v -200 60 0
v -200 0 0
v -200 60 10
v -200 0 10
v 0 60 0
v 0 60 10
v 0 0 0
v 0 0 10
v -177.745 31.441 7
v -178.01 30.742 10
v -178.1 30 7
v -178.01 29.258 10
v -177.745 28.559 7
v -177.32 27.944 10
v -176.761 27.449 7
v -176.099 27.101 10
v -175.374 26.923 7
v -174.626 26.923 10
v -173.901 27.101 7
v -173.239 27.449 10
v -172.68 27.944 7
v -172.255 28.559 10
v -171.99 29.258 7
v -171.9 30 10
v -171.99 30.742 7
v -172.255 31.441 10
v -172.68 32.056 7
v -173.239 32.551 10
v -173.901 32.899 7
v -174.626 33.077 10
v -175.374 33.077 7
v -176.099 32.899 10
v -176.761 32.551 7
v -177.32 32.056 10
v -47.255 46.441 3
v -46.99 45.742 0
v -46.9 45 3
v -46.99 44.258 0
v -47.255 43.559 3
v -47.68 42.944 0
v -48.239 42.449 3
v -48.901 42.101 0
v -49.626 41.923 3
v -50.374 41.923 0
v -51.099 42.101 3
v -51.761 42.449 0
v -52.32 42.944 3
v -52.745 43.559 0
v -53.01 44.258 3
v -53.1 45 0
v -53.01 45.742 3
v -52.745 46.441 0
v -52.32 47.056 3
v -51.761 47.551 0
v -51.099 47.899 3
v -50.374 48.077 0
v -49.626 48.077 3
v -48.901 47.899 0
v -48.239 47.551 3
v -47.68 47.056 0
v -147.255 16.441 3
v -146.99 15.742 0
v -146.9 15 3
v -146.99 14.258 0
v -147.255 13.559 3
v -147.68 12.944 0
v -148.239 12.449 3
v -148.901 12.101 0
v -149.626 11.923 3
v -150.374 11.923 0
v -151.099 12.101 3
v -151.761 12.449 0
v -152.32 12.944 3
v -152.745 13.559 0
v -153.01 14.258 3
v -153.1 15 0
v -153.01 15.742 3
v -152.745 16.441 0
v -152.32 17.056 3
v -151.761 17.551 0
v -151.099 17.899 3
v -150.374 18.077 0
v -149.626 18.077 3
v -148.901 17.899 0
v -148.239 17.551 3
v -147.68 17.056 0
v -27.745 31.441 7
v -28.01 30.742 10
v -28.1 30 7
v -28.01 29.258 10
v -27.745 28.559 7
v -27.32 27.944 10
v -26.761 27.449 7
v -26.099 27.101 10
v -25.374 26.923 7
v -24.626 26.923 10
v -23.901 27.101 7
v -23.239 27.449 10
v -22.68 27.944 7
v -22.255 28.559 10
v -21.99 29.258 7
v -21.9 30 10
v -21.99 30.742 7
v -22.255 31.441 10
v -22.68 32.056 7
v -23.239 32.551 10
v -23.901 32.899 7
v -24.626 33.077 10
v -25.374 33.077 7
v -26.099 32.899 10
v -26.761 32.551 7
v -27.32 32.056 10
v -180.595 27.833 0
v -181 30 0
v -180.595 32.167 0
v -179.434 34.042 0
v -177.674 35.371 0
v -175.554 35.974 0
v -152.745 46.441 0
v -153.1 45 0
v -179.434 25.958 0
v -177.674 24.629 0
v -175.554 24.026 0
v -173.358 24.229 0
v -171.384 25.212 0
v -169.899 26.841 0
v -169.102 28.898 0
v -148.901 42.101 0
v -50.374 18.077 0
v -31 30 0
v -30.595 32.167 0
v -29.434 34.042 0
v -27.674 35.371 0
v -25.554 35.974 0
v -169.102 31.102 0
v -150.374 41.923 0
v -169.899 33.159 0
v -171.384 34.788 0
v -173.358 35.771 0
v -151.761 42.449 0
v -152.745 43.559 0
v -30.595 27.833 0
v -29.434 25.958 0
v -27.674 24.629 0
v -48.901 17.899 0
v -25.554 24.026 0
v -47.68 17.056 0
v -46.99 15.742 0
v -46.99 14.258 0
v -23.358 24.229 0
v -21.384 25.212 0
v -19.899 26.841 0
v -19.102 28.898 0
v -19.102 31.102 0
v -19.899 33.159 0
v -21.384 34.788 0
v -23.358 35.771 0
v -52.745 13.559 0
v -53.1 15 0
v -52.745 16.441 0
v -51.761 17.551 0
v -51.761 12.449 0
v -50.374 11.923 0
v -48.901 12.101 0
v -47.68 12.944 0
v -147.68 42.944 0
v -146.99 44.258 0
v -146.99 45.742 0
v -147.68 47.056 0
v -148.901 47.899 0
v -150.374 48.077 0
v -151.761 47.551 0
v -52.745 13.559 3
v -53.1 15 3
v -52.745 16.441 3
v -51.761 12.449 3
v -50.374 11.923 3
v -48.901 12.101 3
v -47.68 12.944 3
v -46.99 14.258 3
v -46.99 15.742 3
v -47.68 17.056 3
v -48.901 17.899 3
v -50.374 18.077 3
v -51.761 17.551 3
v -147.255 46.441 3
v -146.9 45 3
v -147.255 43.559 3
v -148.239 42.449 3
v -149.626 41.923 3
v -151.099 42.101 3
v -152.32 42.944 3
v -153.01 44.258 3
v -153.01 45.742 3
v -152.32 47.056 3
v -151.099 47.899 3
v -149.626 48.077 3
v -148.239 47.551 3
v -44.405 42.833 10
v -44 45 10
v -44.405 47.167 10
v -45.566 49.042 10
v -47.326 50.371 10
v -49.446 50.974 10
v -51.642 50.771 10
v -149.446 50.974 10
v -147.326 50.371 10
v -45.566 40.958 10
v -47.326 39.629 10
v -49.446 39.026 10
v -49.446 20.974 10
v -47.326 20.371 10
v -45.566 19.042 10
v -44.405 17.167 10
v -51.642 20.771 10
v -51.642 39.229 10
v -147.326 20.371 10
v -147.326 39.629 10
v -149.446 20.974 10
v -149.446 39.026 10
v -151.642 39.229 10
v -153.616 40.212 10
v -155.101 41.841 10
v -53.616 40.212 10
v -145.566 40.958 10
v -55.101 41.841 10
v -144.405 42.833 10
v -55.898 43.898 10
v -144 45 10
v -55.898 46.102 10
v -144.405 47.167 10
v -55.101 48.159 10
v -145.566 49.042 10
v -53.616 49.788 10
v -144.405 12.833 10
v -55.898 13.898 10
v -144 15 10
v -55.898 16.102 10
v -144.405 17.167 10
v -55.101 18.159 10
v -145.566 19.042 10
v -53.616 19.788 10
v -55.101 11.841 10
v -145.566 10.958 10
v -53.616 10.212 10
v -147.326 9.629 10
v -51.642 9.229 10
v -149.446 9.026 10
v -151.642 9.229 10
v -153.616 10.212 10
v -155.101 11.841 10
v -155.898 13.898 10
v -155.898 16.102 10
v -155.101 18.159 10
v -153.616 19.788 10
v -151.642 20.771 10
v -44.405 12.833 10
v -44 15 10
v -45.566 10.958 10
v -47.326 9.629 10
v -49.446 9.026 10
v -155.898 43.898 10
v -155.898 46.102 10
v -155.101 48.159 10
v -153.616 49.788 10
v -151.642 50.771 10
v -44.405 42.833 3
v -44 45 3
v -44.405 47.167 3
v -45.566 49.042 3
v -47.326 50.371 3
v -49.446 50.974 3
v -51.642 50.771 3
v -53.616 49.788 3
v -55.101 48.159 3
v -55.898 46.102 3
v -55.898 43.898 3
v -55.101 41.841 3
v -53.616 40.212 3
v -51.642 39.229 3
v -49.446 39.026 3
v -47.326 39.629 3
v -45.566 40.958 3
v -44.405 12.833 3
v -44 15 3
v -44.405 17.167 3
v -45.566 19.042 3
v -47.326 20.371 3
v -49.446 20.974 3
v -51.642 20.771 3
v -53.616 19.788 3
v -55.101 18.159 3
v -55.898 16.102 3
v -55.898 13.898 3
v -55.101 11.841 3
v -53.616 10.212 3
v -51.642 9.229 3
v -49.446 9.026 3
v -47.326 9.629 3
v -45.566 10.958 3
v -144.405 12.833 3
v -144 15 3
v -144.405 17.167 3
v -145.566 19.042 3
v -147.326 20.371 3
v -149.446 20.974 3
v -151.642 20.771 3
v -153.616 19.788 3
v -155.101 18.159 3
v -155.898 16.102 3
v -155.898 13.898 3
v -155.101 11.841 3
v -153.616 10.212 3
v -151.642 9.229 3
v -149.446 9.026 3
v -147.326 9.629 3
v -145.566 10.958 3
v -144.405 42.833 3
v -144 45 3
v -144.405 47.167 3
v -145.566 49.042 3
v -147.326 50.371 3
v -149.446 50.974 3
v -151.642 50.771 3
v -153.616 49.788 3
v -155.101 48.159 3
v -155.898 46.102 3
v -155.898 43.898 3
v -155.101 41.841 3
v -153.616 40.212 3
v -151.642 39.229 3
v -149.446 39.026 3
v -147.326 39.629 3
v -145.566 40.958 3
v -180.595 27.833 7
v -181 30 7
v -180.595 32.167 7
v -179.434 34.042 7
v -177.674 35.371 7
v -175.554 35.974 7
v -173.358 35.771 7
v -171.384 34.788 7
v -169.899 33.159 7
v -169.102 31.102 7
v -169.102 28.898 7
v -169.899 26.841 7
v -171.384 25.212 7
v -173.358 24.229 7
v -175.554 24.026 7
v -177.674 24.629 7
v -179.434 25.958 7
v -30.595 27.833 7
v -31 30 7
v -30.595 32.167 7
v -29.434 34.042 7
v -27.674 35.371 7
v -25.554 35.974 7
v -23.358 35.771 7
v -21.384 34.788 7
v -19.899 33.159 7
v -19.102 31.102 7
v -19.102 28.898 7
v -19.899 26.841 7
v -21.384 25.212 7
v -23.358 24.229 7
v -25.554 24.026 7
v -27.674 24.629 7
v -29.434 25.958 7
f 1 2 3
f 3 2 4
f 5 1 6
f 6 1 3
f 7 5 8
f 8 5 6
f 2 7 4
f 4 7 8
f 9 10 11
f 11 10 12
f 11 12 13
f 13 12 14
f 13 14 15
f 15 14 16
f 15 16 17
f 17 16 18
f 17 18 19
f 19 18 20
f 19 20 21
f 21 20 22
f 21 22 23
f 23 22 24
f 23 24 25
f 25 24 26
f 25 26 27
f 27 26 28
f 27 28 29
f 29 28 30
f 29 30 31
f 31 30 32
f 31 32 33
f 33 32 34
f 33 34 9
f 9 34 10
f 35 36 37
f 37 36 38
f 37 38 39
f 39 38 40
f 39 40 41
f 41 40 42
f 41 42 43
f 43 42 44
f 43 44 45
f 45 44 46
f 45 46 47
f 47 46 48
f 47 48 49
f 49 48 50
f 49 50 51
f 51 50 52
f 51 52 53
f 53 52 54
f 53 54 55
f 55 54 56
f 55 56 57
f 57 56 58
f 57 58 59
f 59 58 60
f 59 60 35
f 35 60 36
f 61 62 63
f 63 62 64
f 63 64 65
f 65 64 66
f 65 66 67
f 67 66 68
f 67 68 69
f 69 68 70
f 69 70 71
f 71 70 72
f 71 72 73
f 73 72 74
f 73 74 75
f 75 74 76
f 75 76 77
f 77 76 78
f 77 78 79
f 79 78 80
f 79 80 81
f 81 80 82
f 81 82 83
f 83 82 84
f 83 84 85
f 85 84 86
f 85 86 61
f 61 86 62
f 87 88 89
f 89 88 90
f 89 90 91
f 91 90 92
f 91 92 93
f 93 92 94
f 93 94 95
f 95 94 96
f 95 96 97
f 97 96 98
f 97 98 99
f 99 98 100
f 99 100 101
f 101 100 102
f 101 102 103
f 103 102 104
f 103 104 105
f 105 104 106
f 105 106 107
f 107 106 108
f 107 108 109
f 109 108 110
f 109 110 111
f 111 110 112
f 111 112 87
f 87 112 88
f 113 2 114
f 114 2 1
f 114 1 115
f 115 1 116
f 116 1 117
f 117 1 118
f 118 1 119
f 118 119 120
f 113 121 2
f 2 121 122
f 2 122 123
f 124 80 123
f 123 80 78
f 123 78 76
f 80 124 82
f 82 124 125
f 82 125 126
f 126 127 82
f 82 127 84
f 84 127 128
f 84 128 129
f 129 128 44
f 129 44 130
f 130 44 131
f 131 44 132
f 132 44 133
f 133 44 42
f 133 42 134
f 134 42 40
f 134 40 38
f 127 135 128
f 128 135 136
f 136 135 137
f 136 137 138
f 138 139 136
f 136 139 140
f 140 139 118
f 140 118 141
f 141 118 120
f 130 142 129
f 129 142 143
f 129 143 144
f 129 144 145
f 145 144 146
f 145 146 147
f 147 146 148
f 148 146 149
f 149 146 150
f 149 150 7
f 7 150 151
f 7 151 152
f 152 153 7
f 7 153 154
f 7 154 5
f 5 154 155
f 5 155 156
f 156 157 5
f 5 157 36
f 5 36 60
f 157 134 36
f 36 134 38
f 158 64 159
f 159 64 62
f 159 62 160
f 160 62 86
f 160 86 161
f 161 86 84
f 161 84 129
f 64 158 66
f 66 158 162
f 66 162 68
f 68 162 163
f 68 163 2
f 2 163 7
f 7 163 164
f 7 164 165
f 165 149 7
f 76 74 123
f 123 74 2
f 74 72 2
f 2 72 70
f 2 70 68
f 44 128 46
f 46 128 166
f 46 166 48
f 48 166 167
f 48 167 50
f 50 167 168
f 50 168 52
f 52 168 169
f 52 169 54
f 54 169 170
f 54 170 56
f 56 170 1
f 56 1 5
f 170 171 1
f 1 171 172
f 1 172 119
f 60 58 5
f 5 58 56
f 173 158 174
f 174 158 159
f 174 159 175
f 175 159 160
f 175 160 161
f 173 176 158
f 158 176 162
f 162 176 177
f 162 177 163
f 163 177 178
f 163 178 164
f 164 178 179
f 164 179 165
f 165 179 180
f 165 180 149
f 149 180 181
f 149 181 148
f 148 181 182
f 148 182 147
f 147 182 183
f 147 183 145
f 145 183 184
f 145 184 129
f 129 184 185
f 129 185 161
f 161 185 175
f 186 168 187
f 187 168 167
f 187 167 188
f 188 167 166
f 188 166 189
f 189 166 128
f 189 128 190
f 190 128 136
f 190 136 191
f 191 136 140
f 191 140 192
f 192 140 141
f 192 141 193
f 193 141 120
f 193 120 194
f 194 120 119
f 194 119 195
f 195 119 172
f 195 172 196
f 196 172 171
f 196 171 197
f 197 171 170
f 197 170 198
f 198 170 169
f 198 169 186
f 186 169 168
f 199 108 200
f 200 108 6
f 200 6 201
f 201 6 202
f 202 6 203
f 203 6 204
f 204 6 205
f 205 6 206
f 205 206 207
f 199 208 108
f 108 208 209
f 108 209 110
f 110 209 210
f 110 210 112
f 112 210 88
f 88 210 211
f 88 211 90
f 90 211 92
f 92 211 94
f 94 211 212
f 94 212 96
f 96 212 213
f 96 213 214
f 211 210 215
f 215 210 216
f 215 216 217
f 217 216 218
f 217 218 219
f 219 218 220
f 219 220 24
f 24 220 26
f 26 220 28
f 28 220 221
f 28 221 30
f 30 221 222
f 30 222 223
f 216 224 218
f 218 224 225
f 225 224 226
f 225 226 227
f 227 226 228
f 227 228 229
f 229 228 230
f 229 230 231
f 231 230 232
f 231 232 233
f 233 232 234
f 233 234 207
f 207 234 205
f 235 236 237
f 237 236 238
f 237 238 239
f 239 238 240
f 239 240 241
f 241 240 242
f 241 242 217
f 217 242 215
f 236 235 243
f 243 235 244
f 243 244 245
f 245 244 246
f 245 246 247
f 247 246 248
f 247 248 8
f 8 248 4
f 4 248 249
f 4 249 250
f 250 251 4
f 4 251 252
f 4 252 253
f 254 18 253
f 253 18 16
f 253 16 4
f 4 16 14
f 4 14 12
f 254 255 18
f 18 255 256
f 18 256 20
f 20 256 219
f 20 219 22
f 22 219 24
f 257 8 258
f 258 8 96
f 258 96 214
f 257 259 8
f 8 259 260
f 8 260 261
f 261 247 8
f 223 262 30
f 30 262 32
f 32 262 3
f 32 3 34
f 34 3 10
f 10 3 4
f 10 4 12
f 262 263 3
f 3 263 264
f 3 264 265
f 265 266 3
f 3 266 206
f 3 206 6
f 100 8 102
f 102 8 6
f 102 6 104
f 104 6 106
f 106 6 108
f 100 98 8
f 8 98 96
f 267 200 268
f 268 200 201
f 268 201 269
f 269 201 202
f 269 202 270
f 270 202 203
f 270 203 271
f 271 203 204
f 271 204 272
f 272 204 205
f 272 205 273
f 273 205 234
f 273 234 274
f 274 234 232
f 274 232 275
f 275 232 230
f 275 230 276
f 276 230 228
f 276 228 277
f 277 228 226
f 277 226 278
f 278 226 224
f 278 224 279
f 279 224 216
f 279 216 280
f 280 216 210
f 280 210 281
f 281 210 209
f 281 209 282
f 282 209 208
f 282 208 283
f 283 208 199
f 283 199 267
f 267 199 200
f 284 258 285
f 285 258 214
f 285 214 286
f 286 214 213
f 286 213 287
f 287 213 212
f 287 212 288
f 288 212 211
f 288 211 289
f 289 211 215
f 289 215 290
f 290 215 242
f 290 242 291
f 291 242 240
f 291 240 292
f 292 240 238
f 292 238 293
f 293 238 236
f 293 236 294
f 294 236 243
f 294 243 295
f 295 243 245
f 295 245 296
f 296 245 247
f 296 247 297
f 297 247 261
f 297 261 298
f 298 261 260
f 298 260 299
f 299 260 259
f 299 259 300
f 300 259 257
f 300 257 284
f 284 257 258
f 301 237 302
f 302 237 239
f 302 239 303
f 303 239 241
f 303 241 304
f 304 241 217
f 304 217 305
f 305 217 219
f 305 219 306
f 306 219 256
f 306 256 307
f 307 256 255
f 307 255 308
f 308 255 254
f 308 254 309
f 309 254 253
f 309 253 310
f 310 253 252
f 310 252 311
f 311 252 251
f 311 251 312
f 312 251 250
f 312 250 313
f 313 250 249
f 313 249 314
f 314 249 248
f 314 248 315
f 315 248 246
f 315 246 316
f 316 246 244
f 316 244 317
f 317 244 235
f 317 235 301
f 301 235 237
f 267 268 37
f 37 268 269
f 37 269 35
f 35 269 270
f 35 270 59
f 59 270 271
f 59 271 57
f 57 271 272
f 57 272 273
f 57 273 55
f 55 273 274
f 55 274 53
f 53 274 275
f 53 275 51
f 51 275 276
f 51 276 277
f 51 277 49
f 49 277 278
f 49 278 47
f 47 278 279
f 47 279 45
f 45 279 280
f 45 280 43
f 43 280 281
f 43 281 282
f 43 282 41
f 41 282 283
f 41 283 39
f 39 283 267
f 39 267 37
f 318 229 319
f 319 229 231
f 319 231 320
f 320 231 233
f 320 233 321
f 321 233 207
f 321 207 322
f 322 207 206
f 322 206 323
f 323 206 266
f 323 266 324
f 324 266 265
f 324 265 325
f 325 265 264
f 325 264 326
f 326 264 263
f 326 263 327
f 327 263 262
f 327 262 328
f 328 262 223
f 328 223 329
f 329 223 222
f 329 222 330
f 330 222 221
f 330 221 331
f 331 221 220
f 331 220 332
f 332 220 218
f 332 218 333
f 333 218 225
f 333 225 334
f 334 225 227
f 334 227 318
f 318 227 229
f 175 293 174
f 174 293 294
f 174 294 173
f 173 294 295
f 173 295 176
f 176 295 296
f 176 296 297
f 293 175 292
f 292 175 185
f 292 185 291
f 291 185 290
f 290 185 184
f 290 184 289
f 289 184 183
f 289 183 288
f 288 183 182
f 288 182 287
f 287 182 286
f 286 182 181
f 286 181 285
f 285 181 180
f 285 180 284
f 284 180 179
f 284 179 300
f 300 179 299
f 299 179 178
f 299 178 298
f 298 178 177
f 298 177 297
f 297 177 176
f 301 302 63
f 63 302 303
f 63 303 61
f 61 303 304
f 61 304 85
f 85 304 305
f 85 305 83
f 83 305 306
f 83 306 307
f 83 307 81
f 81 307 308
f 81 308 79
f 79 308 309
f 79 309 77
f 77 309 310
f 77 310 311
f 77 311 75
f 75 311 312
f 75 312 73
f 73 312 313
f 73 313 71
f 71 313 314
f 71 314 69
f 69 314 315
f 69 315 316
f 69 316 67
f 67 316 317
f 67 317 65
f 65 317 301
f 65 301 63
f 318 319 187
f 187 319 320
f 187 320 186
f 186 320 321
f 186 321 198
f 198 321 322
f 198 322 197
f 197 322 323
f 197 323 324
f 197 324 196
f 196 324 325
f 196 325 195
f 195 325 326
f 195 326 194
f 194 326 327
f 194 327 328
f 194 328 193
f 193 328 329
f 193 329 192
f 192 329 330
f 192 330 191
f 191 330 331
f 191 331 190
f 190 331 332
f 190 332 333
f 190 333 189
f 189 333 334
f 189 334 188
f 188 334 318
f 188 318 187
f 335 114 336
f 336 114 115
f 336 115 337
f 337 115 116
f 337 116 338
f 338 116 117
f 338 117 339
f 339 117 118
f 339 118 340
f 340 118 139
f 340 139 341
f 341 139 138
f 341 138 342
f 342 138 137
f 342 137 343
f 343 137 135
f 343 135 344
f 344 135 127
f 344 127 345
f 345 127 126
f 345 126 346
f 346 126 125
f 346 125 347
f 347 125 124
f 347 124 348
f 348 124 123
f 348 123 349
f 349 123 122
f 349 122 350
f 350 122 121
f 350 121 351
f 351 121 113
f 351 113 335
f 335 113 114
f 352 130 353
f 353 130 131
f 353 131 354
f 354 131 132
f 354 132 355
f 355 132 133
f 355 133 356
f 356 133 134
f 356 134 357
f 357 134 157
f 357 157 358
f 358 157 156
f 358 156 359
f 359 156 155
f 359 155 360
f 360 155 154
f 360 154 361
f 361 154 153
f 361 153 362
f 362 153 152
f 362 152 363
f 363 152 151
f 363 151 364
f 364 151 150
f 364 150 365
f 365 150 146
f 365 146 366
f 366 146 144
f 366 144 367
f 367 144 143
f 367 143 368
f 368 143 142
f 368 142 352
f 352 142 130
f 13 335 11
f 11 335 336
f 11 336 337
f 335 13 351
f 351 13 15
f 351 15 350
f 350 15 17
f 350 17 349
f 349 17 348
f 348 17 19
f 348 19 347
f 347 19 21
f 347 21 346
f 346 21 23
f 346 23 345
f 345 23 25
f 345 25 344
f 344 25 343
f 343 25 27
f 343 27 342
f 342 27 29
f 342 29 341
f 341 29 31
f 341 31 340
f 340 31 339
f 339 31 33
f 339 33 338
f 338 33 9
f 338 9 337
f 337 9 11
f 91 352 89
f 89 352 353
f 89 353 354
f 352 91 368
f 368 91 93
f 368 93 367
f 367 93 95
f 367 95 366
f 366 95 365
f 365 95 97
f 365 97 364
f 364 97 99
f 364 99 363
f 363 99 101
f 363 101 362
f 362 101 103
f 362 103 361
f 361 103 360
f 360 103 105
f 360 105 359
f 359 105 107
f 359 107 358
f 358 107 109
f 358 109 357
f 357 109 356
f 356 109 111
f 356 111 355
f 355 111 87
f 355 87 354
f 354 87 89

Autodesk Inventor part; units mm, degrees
ref_plane "YZ-Ebene" through (0, 0, 0) normal (1, 0, 0) x (0, 1, 0)
ref_plane "XZ-Ebene" through (0, 0, 0) normal (0, 1, 0) x (-1, 0, 0)
ref_plane "XY-Ebene" through (0, 0, 0) normal (0, 0, 1) x (1, 0, 0)
sketch "Skizze1" plane through (0, 0, 0) normal (0, 0, 1) x (1, 0, 0)
  line L0 (-200, 60) -> (0, 60)
  line L1 (0, 60) -> (0, 0)
  line L2 (0, 0) -> (-200, 0)
  line L3 (-200, 0) -> (-200, 60)
  dimension "d0" = 200
  dimension "d1" = 60
extrude "Extrusion1" add sketch "Skizze1" along normal blind 10
sketch "Skizze2" plane through (0, 0, 10) normal (0, 0, 1) x (1, 0, 0)
  circle A0 centre (-175, 30) radius 3.1
  circle A1 centre (-25, 30) radius 3.1
  line L0 (-200, 0) -> (0, 0) projected
  line L1 (0, 0) -> (0, 60) projected
  circle A2 centre (-150, 45) radius 3.1
  circle A3 centre (-50, 45) radius 3.1
  circle A4 centre (-150, 15) radius 3.1
  circle A5 centre (-50, 15) radius 3.1
  line L2 (0, 60) -> (-200, 60) projected
  dimension "d4" = 6.2
  dimension "d5" = 6.2
  dimension "d6" = 30
  dimension "d7" = 30
  dimension "d8" = 150
  dimension "d9" = 25
  dimension "d10" = 6.2
  dimension "d11" = 6.2
  dimension "d12" = 6.2
  dimension "d13" = 6.2
  dimension "d14" = 30
  dimension "d15" = 30
  dimension "d16" = 100
  dimension "d17" = 100
  dimension "d18" = 50
  dimension "d19" = 50
  dimension "d20" = 15
  dimension "d21" = 15
extrude "Extrusion2" cut sketch "Skizze2" against normal blind 15
sketch "Skizze3" plane through (0, 0, 10) normal (0, 0, 1) x (1, 0, 0)
  circle A0 centre (-150, 45) radius 3.1 projected
  circle A1 centre (-150, 45) radius 6
  circle A2 centre (-150, 15) radius 3.1 projected
  circle A3 centre (-150, 15) radius 6
  circle A4 centre (-50, 45) radius 3.1 projected
  circle A5 centre (-50, 15) radius 3.1 projected
  circle A6 centre (-50, 15) radius 6
  circle A7 centre (-50, 45) radius 6
  point P0 (0, 0)
  dimension "d24" = 12
  dimension "d25" = 12
  dimension "d26" = 12
  dimension "d27" = 12
extrude "Extrusion3" cut sketch "Skizze3" against normal blind 7 contours A1 | A3 | A5 | A6 | A7
sketch "Skizze4" plane through (0, 0, 0) normal (0, 0, -1) x (-1, 0, 0)
  circle A0 centre (175, 30) radius 3.1 projected
  circle A1 centre (175, 30) radius 6
  circle A2 centre (25, 30) radius 3.1 projected
  circle A3 centre (25, 30) radius 6
  point P0 (0, 0)
  dimension "d30" = 12
  dimension "d31" = 12
extrude "Extrusion4" cut sketch "Skizze4" against normal blind 7 contours A0 | A1 | A2 | A3
properties part number "adapter_stage"
